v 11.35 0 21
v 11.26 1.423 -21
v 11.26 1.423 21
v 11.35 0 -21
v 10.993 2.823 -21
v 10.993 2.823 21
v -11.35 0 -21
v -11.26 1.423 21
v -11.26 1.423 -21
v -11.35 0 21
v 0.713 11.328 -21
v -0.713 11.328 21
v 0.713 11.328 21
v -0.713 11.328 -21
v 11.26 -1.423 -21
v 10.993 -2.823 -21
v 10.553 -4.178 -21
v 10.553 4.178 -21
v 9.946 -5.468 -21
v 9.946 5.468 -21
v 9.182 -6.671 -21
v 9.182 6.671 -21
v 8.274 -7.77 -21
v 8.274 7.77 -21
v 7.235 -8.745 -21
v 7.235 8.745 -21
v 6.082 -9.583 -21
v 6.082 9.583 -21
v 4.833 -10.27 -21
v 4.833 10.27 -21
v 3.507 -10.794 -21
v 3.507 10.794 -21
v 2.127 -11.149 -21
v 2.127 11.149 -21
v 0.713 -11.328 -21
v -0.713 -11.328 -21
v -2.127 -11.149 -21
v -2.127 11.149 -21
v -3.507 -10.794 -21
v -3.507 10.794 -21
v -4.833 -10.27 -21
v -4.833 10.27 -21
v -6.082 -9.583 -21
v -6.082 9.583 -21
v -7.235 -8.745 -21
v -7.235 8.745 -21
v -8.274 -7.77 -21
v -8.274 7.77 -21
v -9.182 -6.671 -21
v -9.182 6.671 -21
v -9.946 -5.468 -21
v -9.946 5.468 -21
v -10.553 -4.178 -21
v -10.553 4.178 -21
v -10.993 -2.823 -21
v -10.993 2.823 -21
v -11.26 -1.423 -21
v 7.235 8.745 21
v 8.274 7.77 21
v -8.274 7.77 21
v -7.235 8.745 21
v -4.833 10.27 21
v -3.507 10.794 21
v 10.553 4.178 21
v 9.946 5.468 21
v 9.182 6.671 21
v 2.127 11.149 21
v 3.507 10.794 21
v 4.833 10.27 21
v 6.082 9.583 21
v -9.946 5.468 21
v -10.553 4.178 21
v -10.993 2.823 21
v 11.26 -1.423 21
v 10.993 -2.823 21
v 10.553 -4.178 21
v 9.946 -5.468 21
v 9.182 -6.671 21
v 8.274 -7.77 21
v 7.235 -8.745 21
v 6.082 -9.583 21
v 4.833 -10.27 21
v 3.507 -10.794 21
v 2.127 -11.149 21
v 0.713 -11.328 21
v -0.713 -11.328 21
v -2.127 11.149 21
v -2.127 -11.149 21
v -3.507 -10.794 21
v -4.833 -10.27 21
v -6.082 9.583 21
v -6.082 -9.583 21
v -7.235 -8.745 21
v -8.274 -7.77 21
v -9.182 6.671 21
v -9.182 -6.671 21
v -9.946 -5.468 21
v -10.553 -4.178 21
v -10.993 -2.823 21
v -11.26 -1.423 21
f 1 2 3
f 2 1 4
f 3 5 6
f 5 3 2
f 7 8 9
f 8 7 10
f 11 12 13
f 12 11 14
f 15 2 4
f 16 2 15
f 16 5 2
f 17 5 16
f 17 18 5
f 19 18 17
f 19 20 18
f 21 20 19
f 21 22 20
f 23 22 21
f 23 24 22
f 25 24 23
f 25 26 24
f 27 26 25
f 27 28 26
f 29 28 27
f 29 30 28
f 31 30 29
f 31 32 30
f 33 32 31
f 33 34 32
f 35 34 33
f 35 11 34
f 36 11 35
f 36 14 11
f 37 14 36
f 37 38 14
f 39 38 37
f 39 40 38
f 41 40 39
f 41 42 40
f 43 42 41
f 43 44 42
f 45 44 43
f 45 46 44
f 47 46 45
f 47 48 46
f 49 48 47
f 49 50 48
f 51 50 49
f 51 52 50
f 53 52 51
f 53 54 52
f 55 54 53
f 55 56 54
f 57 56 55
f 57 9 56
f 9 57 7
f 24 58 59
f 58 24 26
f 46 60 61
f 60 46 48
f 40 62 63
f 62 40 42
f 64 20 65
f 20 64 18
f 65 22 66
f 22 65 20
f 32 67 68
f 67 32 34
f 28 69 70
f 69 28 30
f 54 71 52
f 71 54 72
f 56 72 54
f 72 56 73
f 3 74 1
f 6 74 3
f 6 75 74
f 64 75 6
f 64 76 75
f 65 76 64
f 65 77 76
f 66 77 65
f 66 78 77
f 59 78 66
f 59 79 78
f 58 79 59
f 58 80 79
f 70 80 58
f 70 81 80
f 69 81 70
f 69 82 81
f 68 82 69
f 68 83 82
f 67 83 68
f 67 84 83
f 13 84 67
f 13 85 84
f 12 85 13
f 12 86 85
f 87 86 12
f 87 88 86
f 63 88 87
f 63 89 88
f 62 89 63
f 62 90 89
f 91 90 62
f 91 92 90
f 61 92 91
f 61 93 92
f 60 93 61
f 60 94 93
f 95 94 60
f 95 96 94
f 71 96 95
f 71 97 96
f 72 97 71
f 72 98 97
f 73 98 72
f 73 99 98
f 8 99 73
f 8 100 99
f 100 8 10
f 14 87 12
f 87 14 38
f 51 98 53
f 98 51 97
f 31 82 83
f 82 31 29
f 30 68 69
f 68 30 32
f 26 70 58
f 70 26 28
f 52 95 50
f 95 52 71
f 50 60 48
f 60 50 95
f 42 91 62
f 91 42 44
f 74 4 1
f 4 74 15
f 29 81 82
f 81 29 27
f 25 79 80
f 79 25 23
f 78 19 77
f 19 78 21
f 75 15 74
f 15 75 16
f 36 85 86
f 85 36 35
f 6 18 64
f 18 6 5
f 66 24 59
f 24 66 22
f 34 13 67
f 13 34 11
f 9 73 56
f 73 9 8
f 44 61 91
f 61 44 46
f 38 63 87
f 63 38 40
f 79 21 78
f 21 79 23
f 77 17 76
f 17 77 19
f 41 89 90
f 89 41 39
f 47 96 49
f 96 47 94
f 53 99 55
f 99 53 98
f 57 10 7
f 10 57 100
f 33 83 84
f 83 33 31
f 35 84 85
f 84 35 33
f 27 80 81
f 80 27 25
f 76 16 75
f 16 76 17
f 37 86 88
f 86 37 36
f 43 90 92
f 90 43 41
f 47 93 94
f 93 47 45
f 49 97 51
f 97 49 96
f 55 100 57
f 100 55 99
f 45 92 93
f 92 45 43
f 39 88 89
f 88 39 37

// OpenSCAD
$fn = 50;


difference() {
	union() {
		translate(v = [0, 0, -21.0000000000]) {
			cylinder(h = 42, r = 11.3500000000);
		}
	}
	union() {
		translate(v = [0, 0, -100.0000000000]) {
			cylinder(h = 200, r = 0);
		}
	}
}
